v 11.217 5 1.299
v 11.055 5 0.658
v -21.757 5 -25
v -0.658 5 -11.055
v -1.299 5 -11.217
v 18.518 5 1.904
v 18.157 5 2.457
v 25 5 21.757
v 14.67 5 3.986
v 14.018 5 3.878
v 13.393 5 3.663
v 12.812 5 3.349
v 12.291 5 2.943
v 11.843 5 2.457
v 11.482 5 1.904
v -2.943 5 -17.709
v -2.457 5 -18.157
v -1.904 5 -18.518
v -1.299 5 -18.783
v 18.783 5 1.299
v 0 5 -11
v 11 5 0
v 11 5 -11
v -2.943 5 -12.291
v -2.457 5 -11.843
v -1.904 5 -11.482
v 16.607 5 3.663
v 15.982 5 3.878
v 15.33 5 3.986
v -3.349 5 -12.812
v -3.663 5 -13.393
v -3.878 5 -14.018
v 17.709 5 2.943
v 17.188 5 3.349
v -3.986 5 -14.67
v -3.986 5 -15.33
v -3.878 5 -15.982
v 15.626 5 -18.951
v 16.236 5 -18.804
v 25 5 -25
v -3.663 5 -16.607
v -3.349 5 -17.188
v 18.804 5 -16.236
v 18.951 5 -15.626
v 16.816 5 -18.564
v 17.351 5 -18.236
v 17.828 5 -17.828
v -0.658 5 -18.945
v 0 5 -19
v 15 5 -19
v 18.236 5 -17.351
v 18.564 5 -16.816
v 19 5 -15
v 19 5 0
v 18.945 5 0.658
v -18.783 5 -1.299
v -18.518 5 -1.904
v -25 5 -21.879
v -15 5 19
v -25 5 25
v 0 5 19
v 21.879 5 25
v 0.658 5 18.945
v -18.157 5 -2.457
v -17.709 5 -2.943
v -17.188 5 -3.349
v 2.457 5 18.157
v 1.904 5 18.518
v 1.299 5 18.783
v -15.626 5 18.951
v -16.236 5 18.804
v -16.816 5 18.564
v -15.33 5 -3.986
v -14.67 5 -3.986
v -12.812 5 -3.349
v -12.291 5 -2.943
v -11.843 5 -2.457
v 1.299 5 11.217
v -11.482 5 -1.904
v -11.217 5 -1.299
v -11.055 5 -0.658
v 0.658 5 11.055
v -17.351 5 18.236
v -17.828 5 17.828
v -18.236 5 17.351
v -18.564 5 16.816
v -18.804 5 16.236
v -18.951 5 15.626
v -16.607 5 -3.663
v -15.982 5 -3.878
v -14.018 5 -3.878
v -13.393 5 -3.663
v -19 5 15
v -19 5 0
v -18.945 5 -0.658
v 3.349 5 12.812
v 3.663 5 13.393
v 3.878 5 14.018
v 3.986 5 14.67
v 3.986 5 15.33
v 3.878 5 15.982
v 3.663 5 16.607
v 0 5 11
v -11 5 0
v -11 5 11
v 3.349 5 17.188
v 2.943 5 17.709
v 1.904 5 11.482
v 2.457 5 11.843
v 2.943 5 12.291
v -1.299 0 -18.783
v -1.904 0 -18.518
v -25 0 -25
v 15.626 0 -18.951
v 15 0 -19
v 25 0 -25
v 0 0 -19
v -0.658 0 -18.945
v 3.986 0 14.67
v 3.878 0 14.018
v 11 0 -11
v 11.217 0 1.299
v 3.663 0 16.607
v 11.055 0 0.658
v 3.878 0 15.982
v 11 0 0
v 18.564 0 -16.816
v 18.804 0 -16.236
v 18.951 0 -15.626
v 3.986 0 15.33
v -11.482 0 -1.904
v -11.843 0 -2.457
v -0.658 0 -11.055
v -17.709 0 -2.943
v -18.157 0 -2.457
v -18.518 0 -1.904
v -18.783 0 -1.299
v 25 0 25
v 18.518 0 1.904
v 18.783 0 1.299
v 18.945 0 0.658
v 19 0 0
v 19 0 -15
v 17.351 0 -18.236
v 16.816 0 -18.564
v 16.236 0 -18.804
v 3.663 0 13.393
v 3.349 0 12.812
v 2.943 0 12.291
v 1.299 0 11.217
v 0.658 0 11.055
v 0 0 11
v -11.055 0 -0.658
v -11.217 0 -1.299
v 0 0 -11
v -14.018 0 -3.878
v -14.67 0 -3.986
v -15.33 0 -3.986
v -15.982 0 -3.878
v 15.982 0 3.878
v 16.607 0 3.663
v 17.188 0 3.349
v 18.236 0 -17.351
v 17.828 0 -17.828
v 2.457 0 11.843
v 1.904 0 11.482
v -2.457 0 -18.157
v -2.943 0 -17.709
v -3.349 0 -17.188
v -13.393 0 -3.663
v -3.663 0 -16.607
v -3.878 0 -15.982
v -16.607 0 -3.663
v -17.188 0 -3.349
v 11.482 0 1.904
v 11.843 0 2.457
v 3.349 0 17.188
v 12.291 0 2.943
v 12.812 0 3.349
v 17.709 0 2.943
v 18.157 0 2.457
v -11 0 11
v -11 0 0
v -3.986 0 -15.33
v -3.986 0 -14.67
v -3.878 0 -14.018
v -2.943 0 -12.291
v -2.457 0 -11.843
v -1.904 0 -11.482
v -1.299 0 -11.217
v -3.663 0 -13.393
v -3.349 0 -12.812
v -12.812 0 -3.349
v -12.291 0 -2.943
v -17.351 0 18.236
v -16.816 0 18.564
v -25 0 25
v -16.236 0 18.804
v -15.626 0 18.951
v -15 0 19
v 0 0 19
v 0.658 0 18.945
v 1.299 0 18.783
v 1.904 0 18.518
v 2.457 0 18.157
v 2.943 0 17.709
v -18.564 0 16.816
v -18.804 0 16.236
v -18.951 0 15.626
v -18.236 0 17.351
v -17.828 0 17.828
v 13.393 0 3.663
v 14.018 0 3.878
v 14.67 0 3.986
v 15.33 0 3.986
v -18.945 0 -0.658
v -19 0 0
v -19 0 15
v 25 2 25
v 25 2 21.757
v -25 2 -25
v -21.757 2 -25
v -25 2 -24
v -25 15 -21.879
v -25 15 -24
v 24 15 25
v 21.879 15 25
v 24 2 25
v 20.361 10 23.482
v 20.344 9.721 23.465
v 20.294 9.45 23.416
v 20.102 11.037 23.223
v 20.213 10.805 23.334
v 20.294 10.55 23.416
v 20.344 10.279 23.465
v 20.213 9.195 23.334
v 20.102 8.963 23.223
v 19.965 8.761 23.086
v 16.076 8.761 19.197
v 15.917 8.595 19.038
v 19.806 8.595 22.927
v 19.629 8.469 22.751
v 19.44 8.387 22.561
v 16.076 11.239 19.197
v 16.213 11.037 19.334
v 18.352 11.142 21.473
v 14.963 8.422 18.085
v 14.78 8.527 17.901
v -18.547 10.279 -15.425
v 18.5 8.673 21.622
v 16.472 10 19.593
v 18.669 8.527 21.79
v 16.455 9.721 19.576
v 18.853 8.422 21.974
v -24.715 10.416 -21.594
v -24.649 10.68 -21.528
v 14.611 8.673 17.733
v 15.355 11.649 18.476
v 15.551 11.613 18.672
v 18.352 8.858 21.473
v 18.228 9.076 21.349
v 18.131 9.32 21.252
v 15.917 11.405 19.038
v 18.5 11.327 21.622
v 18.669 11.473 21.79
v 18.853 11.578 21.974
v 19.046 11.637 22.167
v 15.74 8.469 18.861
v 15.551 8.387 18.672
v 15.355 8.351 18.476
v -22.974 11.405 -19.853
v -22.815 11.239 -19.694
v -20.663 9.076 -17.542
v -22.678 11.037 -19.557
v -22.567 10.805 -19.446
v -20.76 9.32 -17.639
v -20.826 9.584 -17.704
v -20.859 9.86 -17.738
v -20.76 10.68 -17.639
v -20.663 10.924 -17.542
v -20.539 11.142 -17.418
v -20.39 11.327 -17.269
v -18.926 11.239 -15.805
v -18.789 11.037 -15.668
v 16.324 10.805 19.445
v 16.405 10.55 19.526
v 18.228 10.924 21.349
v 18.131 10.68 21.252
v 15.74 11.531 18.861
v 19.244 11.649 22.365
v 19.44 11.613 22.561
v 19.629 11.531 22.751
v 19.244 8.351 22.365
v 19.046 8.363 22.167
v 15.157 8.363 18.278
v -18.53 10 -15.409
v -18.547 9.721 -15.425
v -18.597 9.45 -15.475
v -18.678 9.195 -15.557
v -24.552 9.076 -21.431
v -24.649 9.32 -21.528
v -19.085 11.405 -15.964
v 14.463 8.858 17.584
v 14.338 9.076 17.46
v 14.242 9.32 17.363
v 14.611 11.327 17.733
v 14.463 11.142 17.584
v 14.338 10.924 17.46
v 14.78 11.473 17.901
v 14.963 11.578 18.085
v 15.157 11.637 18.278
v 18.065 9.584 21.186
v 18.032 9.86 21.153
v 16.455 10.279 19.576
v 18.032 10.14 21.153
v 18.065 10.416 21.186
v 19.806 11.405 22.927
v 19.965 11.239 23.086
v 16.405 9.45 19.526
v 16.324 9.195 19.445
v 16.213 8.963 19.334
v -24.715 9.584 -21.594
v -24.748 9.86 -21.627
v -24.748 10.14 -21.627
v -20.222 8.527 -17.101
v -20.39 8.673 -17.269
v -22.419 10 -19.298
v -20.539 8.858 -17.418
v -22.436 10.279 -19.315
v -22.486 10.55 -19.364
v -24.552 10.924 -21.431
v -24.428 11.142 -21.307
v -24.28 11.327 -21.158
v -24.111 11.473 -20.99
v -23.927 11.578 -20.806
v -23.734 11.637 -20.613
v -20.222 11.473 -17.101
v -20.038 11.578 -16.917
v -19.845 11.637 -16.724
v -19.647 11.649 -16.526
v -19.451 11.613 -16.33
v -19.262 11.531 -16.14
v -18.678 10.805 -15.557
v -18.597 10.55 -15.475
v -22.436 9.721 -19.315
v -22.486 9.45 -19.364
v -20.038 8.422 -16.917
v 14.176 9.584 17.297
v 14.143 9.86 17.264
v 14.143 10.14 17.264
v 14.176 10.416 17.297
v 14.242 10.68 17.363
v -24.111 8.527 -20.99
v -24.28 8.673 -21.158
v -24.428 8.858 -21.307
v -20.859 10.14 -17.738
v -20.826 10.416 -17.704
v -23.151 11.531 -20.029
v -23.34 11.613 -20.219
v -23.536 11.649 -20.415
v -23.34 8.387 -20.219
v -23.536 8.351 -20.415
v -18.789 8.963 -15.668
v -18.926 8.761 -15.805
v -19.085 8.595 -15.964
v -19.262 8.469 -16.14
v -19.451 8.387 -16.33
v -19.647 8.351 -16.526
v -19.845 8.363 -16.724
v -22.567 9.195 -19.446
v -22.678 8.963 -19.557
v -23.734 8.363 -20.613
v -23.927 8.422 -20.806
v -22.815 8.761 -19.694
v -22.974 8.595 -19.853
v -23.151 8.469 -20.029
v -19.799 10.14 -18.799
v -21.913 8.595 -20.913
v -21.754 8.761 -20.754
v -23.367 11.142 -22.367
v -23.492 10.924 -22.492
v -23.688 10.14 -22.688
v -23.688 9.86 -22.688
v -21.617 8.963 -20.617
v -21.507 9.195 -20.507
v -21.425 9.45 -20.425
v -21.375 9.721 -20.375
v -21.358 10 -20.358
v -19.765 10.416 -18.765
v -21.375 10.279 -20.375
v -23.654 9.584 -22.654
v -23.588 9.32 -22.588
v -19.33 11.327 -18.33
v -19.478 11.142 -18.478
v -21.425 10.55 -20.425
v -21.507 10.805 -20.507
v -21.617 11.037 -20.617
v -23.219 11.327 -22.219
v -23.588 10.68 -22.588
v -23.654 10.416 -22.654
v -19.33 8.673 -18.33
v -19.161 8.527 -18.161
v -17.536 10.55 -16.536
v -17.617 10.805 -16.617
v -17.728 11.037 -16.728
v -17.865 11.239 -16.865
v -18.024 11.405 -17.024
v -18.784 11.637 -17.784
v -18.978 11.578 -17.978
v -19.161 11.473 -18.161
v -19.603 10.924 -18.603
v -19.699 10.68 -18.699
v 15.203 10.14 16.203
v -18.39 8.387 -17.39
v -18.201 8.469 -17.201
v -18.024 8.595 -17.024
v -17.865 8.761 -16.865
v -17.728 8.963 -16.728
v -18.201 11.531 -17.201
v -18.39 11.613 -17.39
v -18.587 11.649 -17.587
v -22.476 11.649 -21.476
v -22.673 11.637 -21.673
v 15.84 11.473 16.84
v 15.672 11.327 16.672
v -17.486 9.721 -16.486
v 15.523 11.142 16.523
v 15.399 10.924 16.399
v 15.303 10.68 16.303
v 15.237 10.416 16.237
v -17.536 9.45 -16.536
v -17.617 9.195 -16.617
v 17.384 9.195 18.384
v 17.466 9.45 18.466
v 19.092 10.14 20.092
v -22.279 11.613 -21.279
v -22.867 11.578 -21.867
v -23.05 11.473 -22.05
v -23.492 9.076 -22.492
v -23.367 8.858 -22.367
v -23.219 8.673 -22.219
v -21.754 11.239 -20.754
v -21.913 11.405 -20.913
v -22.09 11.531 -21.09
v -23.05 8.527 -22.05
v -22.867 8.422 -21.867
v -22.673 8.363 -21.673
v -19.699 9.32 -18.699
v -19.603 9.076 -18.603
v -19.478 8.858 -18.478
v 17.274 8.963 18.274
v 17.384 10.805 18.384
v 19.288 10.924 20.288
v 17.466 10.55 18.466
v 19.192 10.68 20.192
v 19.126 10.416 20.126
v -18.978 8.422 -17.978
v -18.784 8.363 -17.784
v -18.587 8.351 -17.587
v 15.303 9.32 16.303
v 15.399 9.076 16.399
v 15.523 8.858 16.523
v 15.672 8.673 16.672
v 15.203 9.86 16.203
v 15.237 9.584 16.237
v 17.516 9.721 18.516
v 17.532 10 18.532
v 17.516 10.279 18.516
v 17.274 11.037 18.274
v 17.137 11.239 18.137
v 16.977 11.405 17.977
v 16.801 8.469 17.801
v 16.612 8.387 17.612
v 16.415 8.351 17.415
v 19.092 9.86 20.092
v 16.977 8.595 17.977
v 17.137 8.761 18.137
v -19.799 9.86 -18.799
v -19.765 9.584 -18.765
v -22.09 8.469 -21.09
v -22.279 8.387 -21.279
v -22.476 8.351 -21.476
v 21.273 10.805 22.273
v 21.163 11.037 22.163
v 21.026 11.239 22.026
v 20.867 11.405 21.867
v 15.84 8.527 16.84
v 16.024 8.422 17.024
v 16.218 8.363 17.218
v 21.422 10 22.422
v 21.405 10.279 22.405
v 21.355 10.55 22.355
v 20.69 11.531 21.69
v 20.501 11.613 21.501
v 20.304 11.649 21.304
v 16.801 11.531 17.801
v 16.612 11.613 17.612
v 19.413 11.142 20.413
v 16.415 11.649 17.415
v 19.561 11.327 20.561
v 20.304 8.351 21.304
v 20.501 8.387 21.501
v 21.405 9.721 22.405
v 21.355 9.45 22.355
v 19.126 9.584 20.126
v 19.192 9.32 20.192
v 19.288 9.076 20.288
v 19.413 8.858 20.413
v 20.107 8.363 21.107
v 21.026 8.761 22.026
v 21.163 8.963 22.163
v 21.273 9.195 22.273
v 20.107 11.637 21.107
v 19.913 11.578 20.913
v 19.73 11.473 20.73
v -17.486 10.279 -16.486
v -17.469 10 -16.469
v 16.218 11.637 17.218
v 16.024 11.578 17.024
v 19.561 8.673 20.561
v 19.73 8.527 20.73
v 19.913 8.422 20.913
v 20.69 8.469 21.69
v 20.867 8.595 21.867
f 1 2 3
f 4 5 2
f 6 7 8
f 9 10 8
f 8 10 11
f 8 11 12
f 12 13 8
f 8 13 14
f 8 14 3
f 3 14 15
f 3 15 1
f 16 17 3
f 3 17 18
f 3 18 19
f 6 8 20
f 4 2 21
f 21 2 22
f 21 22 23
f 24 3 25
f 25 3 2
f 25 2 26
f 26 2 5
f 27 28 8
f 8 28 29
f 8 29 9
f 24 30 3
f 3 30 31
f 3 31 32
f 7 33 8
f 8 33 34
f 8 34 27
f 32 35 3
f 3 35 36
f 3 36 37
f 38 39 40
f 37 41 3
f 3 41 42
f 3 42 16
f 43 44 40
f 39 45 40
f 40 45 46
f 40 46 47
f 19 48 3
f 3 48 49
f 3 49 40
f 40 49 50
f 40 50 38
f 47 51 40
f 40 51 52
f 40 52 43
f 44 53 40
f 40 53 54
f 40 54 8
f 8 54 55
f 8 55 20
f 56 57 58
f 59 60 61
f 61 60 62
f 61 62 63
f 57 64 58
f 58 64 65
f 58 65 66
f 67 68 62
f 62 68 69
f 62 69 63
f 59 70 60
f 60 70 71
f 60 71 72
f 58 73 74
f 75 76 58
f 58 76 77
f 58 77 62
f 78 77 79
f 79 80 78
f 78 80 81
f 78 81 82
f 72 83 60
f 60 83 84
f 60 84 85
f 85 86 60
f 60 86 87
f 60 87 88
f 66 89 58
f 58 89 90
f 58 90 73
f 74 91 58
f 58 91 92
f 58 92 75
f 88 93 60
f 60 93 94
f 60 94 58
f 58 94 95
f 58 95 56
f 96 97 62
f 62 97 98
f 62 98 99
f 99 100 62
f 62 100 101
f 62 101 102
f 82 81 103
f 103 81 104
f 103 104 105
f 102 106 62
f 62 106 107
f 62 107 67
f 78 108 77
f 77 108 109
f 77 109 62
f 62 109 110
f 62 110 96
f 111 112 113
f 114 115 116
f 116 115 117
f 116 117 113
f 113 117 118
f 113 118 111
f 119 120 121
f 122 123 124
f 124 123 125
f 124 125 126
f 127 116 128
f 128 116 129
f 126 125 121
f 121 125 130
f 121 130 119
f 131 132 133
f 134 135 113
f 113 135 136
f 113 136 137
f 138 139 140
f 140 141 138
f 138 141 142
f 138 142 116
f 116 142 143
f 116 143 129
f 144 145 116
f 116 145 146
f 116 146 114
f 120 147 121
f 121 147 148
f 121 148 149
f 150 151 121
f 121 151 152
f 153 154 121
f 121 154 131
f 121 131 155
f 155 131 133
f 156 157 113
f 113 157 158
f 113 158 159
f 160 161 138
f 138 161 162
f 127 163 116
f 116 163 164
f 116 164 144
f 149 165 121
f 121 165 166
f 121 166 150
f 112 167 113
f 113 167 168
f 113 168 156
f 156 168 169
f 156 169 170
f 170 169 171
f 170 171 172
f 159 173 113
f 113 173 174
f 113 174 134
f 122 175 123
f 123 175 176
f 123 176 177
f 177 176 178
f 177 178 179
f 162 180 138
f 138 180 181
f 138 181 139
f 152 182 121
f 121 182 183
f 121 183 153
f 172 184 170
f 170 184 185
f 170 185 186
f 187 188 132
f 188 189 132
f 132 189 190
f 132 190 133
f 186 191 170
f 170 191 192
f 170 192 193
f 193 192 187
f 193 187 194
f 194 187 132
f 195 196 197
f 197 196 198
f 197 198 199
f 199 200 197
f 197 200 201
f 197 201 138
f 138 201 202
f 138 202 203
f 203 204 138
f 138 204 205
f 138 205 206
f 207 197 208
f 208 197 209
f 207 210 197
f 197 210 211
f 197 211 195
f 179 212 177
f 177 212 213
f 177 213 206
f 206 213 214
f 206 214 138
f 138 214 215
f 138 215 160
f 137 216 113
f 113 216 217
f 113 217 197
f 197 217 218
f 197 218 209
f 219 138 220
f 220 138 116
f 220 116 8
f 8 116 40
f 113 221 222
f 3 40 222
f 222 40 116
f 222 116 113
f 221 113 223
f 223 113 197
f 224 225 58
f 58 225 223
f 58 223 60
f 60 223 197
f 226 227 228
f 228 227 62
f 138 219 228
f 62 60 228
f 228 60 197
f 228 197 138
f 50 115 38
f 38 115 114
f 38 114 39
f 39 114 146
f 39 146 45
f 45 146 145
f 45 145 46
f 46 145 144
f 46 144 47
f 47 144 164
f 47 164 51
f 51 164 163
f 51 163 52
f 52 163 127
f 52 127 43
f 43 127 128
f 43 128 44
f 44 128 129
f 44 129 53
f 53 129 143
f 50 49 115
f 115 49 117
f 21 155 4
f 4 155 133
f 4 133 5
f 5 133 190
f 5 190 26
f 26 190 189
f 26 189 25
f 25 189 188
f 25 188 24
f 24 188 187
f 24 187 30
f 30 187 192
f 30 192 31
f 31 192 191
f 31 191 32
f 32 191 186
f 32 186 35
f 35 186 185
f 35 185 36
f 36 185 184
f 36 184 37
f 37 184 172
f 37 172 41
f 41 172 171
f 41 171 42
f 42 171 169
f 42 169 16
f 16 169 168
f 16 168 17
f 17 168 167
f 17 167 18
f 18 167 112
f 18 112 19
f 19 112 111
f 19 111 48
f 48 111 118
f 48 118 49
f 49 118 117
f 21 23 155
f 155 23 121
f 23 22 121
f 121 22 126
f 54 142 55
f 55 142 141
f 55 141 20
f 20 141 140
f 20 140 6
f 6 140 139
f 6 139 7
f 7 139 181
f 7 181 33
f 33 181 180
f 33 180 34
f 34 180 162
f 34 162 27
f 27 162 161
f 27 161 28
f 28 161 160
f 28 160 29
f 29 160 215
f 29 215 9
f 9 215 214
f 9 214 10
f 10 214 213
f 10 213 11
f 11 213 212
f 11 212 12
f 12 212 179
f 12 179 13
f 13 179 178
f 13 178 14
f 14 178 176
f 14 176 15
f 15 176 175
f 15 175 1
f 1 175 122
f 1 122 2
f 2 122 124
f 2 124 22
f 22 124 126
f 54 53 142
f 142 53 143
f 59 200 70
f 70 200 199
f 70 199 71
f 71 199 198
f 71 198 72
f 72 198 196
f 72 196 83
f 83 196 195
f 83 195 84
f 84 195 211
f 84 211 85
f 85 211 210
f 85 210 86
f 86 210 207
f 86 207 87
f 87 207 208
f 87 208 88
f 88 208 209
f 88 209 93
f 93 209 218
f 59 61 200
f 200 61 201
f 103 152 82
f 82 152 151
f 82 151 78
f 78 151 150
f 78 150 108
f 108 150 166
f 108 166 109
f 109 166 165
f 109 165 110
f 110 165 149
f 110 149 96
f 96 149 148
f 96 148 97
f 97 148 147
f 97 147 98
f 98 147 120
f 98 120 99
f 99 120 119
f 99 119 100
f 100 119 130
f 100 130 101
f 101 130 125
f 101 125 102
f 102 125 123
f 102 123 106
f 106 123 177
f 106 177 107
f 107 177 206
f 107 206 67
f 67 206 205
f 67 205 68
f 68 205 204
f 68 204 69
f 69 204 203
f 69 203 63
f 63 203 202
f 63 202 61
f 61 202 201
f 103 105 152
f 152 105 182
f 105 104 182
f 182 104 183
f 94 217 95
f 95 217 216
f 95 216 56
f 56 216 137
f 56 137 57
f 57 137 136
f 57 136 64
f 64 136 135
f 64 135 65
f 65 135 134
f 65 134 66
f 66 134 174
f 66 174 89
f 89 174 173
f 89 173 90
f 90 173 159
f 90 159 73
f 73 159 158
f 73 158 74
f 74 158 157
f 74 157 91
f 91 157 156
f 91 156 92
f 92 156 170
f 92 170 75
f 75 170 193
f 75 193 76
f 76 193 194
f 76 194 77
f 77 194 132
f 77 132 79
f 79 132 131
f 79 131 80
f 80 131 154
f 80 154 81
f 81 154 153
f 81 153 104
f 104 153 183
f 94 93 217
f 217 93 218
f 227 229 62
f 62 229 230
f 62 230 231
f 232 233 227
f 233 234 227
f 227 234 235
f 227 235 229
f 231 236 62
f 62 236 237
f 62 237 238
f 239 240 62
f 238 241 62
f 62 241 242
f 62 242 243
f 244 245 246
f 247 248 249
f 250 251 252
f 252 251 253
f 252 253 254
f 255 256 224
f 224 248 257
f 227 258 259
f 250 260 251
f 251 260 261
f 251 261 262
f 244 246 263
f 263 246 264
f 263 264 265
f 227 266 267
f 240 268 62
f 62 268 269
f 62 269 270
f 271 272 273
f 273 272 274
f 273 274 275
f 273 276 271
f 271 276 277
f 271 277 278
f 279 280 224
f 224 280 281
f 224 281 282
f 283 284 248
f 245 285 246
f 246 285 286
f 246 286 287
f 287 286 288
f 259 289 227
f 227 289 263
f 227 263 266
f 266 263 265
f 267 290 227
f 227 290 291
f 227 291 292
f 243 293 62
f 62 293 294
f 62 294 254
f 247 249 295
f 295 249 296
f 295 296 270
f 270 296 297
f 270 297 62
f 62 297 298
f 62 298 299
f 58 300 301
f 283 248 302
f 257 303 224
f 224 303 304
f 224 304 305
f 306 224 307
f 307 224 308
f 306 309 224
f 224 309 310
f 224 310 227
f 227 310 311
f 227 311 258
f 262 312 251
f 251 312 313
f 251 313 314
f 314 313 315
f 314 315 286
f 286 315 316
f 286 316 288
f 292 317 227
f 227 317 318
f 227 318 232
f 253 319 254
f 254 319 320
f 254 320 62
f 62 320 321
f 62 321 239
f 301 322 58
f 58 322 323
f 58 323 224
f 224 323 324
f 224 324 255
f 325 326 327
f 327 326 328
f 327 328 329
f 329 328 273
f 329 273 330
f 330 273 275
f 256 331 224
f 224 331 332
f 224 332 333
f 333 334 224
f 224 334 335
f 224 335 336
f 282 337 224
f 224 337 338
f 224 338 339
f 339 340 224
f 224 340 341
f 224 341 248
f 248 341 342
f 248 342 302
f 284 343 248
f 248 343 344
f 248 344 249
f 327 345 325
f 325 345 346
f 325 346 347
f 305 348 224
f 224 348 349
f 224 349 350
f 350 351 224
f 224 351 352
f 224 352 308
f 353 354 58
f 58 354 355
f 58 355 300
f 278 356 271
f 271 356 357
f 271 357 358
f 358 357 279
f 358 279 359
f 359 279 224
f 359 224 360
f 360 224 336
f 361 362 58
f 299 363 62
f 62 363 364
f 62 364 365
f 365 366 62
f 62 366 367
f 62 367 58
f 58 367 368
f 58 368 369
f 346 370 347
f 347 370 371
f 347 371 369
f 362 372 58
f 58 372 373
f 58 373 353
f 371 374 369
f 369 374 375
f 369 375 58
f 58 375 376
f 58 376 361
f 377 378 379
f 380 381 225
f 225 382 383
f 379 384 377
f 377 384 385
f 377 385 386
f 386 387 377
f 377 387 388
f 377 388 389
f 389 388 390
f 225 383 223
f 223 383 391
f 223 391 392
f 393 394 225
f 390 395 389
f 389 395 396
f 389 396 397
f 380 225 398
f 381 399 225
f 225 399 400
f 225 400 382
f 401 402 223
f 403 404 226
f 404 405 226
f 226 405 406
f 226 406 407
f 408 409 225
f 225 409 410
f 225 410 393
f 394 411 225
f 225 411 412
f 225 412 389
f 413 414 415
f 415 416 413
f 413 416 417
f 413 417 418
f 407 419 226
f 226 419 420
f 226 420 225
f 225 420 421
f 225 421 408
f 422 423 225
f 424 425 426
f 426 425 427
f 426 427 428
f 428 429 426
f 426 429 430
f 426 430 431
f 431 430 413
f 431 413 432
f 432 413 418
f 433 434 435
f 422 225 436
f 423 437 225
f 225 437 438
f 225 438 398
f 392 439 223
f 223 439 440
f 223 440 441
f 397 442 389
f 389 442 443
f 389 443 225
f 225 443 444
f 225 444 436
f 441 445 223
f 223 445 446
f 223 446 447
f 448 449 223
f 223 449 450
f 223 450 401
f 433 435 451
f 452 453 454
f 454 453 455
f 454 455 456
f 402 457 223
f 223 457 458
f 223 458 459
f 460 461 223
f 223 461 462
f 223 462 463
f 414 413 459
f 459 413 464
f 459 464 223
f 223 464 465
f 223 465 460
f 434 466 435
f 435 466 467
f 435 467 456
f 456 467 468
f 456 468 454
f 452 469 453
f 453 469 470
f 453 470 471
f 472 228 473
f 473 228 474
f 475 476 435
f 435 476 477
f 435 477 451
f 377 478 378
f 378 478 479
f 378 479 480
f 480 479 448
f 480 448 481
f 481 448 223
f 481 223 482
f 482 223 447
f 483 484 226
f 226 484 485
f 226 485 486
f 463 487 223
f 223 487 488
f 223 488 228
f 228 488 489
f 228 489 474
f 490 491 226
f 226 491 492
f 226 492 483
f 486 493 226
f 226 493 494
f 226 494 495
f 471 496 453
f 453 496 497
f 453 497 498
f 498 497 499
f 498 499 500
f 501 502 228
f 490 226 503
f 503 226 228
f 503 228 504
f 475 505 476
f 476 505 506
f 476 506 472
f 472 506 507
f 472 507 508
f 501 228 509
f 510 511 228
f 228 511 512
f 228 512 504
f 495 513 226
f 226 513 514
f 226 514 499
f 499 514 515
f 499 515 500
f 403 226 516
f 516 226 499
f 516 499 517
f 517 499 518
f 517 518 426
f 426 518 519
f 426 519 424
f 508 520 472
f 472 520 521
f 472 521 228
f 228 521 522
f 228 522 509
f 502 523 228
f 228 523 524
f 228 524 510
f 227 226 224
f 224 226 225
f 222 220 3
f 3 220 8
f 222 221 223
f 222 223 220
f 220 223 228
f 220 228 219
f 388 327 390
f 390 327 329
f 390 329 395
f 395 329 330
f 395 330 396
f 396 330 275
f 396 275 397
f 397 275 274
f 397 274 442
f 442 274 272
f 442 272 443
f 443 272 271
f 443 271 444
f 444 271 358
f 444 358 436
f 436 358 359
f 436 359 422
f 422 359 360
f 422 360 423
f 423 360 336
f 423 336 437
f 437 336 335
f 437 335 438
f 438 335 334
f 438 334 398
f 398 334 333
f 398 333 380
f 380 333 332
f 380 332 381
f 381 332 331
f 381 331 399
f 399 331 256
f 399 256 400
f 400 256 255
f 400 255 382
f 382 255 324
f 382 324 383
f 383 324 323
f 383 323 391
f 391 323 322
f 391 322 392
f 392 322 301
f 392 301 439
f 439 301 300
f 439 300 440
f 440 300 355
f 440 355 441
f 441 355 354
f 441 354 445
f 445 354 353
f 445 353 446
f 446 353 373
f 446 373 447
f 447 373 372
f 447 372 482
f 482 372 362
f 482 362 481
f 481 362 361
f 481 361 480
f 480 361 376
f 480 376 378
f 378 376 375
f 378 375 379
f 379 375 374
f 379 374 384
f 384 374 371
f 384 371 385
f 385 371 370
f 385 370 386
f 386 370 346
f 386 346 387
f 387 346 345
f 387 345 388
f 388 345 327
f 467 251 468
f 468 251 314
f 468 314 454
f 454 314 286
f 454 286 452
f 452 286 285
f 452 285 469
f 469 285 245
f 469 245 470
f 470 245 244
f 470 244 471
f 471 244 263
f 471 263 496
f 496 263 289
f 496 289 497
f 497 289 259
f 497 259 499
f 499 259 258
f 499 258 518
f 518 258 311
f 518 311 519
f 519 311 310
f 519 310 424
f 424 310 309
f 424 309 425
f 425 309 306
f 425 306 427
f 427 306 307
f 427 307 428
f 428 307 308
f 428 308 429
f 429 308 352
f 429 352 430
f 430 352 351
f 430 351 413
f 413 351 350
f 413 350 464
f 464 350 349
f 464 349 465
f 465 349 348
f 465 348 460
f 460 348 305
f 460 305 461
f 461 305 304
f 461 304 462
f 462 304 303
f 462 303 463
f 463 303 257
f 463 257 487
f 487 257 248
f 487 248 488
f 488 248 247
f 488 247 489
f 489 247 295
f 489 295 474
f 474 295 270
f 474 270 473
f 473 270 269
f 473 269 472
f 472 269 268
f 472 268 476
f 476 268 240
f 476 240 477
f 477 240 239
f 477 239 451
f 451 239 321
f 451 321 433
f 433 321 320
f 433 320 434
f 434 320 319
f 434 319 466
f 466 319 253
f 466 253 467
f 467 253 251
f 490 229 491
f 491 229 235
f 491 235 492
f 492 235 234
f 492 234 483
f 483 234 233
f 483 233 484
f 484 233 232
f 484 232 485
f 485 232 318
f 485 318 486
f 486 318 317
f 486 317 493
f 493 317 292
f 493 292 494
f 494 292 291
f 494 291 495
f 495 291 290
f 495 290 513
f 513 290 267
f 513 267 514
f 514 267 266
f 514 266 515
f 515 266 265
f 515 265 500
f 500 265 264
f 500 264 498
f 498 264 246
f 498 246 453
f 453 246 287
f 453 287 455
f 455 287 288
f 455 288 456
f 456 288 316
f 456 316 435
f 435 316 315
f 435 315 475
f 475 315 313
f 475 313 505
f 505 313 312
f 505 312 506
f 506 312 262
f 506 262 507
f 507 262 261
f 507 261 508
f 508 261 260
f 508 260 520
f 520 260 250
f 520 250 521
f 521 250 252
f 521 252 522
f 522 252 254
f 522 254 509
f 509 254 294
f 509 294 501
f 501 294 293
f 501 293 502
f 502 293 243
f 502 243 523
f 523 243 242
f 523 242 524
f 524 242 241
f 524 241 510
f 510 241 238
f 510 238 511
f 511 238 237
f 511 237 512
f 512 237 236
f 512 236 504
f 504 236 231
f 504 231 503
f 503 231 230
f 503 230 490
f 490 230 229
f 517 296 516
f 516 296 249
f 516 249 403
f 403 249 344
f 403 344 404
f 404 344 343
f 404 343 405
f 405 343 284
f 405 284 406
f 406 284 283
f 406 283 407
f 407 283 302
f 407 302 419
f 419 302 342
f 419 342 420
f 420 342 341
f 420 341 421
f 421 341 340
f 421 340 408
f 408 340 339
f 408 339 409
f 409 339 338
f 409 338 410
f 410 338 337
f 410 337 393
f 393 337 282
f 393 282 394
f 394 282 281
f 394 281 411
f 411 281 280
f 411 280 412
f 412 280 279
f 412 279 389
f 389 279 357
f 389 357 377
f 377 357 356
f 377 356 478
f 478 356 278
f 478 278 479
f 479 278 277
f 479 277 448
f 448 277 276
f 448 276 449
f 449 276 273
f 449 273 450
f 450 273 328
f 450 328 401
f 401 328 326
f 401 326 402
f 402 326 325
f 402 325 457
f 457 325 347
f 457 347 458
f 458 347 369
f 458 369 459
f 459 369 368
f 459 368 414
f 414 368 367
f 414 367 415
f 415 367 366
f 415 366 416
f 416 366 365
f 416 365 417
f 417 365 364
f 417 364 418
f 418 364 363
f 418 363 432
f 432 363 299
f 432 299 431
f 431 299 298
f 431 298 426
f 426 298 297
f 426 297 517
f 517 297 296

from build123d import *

# Parameters (mm, degrees)
SKETCH1_W           = 50
SKETCH1_H           = 50
BOSS_EXTRUDE1_DEPTH = 5
BOSS_EXTRUDE2_DEPTH = 10
CUT_EXTRUDE1_DEPTH  = 3
SKETCH4_R           = 1.65
CUT_EXTRUDE2_DEPTH  = 38.562445841


with BuildPart() as part:
    # Sketch1 → Boss-Extrude1 (new body)
    with BuildSketch(Plane(origin=(0, 0, 0), x_dir=(1, 0, 0), z_dir=(0, 1, 0))):
        Rectangle(SKETCH1_W, SKETCH1_H)
        with BuildLine():
            Line((15, 19), (0, 19))
            ThreePointArc((0, 19), (-4, 15), (0, 11))
            Line((0, 11), (11, 11))
            Line((11, 11), (11, 0))
            ThreePointArc((11, 0), (15, -4), (19, 0))
            Line((19, 0), (19, 15))
            ThreePointArc((19, 15), (17.828427125, 17.828427125), (15, 19))
        make_face(mode=Mode.SUBTRACT)
        with BuildLine():
            Line((-15, -19), (0, -19))
            ThreePointArc((0, -19), (4, -15), (0, -11))
            Line((0, -11), (-11, -11))
            Line((-11, -11), (-11, 0))
            ThreePointArc((-11, 0), (-15, 4), (-19, 0))
            Line((-19, 0), (-19, -15))
            ThreePointArc((-19, -15), (-17.828427125, -17.828427125), (-15, -19))
        make_face(mode=Mode.SUBTRACT)
    extrude(amount=BOSS_EXTRUDE1_DEPTH)

    # Sketch2 → Boss-Extrude2 (add)
    with BuildSketch(Plane(origin=(0, 5, 0), x_dir=(1, 0, 0), z_dir=(0, 1, 0))):
        Polygon((-25, 21.878679656), (21.878679656, -25), (24, -25), (-25, 24), align=None)
    extrude(amount=BOSS_EXTRUDE2_DEPTH)

    # Sketch3 → Cut-Extrude1 (cut)
    with BuildSketch(Plane(origin=(0, 5, 0), x_dir=(1, 0, 0), z_dir=(0, 1, 0))):
        Polygon((-21.757359313, 25), (25, -21.757359313), (25, -25), (24, -25), (-25, 24), (-25, 25), align=None)
    extrude(amount=-CUT_EXTRUDE1_DEPTH, mode=Mode.SUBTRACT)

    # Sketch4 → Cut-Extrude2 (cut, through all)
    with BuildSketch(Plane(origin=(-1.560660172, 0, 1.560660172), x_dir=(0.707106781, 0, 0.707106781), z_dir=(-0.707106781, 0, 0.707106781))):
        with Locations((-31.148232278, 10)):
            Circle(SKETCH4_R)
        with Locations((23.851767722, 10)):
            Circle(SKETCH4_R)
        with Locations((29.351767722, 10)):
            Circle(SKETCH4_R)
        with Locations((-25.648232278, 10)):
            Circle(SKETCH4_R)
    extrude(amount=-CUT_EXTRUDE2_DEPTH, mode=Mode.SUBTRACT)


solid = part.part
